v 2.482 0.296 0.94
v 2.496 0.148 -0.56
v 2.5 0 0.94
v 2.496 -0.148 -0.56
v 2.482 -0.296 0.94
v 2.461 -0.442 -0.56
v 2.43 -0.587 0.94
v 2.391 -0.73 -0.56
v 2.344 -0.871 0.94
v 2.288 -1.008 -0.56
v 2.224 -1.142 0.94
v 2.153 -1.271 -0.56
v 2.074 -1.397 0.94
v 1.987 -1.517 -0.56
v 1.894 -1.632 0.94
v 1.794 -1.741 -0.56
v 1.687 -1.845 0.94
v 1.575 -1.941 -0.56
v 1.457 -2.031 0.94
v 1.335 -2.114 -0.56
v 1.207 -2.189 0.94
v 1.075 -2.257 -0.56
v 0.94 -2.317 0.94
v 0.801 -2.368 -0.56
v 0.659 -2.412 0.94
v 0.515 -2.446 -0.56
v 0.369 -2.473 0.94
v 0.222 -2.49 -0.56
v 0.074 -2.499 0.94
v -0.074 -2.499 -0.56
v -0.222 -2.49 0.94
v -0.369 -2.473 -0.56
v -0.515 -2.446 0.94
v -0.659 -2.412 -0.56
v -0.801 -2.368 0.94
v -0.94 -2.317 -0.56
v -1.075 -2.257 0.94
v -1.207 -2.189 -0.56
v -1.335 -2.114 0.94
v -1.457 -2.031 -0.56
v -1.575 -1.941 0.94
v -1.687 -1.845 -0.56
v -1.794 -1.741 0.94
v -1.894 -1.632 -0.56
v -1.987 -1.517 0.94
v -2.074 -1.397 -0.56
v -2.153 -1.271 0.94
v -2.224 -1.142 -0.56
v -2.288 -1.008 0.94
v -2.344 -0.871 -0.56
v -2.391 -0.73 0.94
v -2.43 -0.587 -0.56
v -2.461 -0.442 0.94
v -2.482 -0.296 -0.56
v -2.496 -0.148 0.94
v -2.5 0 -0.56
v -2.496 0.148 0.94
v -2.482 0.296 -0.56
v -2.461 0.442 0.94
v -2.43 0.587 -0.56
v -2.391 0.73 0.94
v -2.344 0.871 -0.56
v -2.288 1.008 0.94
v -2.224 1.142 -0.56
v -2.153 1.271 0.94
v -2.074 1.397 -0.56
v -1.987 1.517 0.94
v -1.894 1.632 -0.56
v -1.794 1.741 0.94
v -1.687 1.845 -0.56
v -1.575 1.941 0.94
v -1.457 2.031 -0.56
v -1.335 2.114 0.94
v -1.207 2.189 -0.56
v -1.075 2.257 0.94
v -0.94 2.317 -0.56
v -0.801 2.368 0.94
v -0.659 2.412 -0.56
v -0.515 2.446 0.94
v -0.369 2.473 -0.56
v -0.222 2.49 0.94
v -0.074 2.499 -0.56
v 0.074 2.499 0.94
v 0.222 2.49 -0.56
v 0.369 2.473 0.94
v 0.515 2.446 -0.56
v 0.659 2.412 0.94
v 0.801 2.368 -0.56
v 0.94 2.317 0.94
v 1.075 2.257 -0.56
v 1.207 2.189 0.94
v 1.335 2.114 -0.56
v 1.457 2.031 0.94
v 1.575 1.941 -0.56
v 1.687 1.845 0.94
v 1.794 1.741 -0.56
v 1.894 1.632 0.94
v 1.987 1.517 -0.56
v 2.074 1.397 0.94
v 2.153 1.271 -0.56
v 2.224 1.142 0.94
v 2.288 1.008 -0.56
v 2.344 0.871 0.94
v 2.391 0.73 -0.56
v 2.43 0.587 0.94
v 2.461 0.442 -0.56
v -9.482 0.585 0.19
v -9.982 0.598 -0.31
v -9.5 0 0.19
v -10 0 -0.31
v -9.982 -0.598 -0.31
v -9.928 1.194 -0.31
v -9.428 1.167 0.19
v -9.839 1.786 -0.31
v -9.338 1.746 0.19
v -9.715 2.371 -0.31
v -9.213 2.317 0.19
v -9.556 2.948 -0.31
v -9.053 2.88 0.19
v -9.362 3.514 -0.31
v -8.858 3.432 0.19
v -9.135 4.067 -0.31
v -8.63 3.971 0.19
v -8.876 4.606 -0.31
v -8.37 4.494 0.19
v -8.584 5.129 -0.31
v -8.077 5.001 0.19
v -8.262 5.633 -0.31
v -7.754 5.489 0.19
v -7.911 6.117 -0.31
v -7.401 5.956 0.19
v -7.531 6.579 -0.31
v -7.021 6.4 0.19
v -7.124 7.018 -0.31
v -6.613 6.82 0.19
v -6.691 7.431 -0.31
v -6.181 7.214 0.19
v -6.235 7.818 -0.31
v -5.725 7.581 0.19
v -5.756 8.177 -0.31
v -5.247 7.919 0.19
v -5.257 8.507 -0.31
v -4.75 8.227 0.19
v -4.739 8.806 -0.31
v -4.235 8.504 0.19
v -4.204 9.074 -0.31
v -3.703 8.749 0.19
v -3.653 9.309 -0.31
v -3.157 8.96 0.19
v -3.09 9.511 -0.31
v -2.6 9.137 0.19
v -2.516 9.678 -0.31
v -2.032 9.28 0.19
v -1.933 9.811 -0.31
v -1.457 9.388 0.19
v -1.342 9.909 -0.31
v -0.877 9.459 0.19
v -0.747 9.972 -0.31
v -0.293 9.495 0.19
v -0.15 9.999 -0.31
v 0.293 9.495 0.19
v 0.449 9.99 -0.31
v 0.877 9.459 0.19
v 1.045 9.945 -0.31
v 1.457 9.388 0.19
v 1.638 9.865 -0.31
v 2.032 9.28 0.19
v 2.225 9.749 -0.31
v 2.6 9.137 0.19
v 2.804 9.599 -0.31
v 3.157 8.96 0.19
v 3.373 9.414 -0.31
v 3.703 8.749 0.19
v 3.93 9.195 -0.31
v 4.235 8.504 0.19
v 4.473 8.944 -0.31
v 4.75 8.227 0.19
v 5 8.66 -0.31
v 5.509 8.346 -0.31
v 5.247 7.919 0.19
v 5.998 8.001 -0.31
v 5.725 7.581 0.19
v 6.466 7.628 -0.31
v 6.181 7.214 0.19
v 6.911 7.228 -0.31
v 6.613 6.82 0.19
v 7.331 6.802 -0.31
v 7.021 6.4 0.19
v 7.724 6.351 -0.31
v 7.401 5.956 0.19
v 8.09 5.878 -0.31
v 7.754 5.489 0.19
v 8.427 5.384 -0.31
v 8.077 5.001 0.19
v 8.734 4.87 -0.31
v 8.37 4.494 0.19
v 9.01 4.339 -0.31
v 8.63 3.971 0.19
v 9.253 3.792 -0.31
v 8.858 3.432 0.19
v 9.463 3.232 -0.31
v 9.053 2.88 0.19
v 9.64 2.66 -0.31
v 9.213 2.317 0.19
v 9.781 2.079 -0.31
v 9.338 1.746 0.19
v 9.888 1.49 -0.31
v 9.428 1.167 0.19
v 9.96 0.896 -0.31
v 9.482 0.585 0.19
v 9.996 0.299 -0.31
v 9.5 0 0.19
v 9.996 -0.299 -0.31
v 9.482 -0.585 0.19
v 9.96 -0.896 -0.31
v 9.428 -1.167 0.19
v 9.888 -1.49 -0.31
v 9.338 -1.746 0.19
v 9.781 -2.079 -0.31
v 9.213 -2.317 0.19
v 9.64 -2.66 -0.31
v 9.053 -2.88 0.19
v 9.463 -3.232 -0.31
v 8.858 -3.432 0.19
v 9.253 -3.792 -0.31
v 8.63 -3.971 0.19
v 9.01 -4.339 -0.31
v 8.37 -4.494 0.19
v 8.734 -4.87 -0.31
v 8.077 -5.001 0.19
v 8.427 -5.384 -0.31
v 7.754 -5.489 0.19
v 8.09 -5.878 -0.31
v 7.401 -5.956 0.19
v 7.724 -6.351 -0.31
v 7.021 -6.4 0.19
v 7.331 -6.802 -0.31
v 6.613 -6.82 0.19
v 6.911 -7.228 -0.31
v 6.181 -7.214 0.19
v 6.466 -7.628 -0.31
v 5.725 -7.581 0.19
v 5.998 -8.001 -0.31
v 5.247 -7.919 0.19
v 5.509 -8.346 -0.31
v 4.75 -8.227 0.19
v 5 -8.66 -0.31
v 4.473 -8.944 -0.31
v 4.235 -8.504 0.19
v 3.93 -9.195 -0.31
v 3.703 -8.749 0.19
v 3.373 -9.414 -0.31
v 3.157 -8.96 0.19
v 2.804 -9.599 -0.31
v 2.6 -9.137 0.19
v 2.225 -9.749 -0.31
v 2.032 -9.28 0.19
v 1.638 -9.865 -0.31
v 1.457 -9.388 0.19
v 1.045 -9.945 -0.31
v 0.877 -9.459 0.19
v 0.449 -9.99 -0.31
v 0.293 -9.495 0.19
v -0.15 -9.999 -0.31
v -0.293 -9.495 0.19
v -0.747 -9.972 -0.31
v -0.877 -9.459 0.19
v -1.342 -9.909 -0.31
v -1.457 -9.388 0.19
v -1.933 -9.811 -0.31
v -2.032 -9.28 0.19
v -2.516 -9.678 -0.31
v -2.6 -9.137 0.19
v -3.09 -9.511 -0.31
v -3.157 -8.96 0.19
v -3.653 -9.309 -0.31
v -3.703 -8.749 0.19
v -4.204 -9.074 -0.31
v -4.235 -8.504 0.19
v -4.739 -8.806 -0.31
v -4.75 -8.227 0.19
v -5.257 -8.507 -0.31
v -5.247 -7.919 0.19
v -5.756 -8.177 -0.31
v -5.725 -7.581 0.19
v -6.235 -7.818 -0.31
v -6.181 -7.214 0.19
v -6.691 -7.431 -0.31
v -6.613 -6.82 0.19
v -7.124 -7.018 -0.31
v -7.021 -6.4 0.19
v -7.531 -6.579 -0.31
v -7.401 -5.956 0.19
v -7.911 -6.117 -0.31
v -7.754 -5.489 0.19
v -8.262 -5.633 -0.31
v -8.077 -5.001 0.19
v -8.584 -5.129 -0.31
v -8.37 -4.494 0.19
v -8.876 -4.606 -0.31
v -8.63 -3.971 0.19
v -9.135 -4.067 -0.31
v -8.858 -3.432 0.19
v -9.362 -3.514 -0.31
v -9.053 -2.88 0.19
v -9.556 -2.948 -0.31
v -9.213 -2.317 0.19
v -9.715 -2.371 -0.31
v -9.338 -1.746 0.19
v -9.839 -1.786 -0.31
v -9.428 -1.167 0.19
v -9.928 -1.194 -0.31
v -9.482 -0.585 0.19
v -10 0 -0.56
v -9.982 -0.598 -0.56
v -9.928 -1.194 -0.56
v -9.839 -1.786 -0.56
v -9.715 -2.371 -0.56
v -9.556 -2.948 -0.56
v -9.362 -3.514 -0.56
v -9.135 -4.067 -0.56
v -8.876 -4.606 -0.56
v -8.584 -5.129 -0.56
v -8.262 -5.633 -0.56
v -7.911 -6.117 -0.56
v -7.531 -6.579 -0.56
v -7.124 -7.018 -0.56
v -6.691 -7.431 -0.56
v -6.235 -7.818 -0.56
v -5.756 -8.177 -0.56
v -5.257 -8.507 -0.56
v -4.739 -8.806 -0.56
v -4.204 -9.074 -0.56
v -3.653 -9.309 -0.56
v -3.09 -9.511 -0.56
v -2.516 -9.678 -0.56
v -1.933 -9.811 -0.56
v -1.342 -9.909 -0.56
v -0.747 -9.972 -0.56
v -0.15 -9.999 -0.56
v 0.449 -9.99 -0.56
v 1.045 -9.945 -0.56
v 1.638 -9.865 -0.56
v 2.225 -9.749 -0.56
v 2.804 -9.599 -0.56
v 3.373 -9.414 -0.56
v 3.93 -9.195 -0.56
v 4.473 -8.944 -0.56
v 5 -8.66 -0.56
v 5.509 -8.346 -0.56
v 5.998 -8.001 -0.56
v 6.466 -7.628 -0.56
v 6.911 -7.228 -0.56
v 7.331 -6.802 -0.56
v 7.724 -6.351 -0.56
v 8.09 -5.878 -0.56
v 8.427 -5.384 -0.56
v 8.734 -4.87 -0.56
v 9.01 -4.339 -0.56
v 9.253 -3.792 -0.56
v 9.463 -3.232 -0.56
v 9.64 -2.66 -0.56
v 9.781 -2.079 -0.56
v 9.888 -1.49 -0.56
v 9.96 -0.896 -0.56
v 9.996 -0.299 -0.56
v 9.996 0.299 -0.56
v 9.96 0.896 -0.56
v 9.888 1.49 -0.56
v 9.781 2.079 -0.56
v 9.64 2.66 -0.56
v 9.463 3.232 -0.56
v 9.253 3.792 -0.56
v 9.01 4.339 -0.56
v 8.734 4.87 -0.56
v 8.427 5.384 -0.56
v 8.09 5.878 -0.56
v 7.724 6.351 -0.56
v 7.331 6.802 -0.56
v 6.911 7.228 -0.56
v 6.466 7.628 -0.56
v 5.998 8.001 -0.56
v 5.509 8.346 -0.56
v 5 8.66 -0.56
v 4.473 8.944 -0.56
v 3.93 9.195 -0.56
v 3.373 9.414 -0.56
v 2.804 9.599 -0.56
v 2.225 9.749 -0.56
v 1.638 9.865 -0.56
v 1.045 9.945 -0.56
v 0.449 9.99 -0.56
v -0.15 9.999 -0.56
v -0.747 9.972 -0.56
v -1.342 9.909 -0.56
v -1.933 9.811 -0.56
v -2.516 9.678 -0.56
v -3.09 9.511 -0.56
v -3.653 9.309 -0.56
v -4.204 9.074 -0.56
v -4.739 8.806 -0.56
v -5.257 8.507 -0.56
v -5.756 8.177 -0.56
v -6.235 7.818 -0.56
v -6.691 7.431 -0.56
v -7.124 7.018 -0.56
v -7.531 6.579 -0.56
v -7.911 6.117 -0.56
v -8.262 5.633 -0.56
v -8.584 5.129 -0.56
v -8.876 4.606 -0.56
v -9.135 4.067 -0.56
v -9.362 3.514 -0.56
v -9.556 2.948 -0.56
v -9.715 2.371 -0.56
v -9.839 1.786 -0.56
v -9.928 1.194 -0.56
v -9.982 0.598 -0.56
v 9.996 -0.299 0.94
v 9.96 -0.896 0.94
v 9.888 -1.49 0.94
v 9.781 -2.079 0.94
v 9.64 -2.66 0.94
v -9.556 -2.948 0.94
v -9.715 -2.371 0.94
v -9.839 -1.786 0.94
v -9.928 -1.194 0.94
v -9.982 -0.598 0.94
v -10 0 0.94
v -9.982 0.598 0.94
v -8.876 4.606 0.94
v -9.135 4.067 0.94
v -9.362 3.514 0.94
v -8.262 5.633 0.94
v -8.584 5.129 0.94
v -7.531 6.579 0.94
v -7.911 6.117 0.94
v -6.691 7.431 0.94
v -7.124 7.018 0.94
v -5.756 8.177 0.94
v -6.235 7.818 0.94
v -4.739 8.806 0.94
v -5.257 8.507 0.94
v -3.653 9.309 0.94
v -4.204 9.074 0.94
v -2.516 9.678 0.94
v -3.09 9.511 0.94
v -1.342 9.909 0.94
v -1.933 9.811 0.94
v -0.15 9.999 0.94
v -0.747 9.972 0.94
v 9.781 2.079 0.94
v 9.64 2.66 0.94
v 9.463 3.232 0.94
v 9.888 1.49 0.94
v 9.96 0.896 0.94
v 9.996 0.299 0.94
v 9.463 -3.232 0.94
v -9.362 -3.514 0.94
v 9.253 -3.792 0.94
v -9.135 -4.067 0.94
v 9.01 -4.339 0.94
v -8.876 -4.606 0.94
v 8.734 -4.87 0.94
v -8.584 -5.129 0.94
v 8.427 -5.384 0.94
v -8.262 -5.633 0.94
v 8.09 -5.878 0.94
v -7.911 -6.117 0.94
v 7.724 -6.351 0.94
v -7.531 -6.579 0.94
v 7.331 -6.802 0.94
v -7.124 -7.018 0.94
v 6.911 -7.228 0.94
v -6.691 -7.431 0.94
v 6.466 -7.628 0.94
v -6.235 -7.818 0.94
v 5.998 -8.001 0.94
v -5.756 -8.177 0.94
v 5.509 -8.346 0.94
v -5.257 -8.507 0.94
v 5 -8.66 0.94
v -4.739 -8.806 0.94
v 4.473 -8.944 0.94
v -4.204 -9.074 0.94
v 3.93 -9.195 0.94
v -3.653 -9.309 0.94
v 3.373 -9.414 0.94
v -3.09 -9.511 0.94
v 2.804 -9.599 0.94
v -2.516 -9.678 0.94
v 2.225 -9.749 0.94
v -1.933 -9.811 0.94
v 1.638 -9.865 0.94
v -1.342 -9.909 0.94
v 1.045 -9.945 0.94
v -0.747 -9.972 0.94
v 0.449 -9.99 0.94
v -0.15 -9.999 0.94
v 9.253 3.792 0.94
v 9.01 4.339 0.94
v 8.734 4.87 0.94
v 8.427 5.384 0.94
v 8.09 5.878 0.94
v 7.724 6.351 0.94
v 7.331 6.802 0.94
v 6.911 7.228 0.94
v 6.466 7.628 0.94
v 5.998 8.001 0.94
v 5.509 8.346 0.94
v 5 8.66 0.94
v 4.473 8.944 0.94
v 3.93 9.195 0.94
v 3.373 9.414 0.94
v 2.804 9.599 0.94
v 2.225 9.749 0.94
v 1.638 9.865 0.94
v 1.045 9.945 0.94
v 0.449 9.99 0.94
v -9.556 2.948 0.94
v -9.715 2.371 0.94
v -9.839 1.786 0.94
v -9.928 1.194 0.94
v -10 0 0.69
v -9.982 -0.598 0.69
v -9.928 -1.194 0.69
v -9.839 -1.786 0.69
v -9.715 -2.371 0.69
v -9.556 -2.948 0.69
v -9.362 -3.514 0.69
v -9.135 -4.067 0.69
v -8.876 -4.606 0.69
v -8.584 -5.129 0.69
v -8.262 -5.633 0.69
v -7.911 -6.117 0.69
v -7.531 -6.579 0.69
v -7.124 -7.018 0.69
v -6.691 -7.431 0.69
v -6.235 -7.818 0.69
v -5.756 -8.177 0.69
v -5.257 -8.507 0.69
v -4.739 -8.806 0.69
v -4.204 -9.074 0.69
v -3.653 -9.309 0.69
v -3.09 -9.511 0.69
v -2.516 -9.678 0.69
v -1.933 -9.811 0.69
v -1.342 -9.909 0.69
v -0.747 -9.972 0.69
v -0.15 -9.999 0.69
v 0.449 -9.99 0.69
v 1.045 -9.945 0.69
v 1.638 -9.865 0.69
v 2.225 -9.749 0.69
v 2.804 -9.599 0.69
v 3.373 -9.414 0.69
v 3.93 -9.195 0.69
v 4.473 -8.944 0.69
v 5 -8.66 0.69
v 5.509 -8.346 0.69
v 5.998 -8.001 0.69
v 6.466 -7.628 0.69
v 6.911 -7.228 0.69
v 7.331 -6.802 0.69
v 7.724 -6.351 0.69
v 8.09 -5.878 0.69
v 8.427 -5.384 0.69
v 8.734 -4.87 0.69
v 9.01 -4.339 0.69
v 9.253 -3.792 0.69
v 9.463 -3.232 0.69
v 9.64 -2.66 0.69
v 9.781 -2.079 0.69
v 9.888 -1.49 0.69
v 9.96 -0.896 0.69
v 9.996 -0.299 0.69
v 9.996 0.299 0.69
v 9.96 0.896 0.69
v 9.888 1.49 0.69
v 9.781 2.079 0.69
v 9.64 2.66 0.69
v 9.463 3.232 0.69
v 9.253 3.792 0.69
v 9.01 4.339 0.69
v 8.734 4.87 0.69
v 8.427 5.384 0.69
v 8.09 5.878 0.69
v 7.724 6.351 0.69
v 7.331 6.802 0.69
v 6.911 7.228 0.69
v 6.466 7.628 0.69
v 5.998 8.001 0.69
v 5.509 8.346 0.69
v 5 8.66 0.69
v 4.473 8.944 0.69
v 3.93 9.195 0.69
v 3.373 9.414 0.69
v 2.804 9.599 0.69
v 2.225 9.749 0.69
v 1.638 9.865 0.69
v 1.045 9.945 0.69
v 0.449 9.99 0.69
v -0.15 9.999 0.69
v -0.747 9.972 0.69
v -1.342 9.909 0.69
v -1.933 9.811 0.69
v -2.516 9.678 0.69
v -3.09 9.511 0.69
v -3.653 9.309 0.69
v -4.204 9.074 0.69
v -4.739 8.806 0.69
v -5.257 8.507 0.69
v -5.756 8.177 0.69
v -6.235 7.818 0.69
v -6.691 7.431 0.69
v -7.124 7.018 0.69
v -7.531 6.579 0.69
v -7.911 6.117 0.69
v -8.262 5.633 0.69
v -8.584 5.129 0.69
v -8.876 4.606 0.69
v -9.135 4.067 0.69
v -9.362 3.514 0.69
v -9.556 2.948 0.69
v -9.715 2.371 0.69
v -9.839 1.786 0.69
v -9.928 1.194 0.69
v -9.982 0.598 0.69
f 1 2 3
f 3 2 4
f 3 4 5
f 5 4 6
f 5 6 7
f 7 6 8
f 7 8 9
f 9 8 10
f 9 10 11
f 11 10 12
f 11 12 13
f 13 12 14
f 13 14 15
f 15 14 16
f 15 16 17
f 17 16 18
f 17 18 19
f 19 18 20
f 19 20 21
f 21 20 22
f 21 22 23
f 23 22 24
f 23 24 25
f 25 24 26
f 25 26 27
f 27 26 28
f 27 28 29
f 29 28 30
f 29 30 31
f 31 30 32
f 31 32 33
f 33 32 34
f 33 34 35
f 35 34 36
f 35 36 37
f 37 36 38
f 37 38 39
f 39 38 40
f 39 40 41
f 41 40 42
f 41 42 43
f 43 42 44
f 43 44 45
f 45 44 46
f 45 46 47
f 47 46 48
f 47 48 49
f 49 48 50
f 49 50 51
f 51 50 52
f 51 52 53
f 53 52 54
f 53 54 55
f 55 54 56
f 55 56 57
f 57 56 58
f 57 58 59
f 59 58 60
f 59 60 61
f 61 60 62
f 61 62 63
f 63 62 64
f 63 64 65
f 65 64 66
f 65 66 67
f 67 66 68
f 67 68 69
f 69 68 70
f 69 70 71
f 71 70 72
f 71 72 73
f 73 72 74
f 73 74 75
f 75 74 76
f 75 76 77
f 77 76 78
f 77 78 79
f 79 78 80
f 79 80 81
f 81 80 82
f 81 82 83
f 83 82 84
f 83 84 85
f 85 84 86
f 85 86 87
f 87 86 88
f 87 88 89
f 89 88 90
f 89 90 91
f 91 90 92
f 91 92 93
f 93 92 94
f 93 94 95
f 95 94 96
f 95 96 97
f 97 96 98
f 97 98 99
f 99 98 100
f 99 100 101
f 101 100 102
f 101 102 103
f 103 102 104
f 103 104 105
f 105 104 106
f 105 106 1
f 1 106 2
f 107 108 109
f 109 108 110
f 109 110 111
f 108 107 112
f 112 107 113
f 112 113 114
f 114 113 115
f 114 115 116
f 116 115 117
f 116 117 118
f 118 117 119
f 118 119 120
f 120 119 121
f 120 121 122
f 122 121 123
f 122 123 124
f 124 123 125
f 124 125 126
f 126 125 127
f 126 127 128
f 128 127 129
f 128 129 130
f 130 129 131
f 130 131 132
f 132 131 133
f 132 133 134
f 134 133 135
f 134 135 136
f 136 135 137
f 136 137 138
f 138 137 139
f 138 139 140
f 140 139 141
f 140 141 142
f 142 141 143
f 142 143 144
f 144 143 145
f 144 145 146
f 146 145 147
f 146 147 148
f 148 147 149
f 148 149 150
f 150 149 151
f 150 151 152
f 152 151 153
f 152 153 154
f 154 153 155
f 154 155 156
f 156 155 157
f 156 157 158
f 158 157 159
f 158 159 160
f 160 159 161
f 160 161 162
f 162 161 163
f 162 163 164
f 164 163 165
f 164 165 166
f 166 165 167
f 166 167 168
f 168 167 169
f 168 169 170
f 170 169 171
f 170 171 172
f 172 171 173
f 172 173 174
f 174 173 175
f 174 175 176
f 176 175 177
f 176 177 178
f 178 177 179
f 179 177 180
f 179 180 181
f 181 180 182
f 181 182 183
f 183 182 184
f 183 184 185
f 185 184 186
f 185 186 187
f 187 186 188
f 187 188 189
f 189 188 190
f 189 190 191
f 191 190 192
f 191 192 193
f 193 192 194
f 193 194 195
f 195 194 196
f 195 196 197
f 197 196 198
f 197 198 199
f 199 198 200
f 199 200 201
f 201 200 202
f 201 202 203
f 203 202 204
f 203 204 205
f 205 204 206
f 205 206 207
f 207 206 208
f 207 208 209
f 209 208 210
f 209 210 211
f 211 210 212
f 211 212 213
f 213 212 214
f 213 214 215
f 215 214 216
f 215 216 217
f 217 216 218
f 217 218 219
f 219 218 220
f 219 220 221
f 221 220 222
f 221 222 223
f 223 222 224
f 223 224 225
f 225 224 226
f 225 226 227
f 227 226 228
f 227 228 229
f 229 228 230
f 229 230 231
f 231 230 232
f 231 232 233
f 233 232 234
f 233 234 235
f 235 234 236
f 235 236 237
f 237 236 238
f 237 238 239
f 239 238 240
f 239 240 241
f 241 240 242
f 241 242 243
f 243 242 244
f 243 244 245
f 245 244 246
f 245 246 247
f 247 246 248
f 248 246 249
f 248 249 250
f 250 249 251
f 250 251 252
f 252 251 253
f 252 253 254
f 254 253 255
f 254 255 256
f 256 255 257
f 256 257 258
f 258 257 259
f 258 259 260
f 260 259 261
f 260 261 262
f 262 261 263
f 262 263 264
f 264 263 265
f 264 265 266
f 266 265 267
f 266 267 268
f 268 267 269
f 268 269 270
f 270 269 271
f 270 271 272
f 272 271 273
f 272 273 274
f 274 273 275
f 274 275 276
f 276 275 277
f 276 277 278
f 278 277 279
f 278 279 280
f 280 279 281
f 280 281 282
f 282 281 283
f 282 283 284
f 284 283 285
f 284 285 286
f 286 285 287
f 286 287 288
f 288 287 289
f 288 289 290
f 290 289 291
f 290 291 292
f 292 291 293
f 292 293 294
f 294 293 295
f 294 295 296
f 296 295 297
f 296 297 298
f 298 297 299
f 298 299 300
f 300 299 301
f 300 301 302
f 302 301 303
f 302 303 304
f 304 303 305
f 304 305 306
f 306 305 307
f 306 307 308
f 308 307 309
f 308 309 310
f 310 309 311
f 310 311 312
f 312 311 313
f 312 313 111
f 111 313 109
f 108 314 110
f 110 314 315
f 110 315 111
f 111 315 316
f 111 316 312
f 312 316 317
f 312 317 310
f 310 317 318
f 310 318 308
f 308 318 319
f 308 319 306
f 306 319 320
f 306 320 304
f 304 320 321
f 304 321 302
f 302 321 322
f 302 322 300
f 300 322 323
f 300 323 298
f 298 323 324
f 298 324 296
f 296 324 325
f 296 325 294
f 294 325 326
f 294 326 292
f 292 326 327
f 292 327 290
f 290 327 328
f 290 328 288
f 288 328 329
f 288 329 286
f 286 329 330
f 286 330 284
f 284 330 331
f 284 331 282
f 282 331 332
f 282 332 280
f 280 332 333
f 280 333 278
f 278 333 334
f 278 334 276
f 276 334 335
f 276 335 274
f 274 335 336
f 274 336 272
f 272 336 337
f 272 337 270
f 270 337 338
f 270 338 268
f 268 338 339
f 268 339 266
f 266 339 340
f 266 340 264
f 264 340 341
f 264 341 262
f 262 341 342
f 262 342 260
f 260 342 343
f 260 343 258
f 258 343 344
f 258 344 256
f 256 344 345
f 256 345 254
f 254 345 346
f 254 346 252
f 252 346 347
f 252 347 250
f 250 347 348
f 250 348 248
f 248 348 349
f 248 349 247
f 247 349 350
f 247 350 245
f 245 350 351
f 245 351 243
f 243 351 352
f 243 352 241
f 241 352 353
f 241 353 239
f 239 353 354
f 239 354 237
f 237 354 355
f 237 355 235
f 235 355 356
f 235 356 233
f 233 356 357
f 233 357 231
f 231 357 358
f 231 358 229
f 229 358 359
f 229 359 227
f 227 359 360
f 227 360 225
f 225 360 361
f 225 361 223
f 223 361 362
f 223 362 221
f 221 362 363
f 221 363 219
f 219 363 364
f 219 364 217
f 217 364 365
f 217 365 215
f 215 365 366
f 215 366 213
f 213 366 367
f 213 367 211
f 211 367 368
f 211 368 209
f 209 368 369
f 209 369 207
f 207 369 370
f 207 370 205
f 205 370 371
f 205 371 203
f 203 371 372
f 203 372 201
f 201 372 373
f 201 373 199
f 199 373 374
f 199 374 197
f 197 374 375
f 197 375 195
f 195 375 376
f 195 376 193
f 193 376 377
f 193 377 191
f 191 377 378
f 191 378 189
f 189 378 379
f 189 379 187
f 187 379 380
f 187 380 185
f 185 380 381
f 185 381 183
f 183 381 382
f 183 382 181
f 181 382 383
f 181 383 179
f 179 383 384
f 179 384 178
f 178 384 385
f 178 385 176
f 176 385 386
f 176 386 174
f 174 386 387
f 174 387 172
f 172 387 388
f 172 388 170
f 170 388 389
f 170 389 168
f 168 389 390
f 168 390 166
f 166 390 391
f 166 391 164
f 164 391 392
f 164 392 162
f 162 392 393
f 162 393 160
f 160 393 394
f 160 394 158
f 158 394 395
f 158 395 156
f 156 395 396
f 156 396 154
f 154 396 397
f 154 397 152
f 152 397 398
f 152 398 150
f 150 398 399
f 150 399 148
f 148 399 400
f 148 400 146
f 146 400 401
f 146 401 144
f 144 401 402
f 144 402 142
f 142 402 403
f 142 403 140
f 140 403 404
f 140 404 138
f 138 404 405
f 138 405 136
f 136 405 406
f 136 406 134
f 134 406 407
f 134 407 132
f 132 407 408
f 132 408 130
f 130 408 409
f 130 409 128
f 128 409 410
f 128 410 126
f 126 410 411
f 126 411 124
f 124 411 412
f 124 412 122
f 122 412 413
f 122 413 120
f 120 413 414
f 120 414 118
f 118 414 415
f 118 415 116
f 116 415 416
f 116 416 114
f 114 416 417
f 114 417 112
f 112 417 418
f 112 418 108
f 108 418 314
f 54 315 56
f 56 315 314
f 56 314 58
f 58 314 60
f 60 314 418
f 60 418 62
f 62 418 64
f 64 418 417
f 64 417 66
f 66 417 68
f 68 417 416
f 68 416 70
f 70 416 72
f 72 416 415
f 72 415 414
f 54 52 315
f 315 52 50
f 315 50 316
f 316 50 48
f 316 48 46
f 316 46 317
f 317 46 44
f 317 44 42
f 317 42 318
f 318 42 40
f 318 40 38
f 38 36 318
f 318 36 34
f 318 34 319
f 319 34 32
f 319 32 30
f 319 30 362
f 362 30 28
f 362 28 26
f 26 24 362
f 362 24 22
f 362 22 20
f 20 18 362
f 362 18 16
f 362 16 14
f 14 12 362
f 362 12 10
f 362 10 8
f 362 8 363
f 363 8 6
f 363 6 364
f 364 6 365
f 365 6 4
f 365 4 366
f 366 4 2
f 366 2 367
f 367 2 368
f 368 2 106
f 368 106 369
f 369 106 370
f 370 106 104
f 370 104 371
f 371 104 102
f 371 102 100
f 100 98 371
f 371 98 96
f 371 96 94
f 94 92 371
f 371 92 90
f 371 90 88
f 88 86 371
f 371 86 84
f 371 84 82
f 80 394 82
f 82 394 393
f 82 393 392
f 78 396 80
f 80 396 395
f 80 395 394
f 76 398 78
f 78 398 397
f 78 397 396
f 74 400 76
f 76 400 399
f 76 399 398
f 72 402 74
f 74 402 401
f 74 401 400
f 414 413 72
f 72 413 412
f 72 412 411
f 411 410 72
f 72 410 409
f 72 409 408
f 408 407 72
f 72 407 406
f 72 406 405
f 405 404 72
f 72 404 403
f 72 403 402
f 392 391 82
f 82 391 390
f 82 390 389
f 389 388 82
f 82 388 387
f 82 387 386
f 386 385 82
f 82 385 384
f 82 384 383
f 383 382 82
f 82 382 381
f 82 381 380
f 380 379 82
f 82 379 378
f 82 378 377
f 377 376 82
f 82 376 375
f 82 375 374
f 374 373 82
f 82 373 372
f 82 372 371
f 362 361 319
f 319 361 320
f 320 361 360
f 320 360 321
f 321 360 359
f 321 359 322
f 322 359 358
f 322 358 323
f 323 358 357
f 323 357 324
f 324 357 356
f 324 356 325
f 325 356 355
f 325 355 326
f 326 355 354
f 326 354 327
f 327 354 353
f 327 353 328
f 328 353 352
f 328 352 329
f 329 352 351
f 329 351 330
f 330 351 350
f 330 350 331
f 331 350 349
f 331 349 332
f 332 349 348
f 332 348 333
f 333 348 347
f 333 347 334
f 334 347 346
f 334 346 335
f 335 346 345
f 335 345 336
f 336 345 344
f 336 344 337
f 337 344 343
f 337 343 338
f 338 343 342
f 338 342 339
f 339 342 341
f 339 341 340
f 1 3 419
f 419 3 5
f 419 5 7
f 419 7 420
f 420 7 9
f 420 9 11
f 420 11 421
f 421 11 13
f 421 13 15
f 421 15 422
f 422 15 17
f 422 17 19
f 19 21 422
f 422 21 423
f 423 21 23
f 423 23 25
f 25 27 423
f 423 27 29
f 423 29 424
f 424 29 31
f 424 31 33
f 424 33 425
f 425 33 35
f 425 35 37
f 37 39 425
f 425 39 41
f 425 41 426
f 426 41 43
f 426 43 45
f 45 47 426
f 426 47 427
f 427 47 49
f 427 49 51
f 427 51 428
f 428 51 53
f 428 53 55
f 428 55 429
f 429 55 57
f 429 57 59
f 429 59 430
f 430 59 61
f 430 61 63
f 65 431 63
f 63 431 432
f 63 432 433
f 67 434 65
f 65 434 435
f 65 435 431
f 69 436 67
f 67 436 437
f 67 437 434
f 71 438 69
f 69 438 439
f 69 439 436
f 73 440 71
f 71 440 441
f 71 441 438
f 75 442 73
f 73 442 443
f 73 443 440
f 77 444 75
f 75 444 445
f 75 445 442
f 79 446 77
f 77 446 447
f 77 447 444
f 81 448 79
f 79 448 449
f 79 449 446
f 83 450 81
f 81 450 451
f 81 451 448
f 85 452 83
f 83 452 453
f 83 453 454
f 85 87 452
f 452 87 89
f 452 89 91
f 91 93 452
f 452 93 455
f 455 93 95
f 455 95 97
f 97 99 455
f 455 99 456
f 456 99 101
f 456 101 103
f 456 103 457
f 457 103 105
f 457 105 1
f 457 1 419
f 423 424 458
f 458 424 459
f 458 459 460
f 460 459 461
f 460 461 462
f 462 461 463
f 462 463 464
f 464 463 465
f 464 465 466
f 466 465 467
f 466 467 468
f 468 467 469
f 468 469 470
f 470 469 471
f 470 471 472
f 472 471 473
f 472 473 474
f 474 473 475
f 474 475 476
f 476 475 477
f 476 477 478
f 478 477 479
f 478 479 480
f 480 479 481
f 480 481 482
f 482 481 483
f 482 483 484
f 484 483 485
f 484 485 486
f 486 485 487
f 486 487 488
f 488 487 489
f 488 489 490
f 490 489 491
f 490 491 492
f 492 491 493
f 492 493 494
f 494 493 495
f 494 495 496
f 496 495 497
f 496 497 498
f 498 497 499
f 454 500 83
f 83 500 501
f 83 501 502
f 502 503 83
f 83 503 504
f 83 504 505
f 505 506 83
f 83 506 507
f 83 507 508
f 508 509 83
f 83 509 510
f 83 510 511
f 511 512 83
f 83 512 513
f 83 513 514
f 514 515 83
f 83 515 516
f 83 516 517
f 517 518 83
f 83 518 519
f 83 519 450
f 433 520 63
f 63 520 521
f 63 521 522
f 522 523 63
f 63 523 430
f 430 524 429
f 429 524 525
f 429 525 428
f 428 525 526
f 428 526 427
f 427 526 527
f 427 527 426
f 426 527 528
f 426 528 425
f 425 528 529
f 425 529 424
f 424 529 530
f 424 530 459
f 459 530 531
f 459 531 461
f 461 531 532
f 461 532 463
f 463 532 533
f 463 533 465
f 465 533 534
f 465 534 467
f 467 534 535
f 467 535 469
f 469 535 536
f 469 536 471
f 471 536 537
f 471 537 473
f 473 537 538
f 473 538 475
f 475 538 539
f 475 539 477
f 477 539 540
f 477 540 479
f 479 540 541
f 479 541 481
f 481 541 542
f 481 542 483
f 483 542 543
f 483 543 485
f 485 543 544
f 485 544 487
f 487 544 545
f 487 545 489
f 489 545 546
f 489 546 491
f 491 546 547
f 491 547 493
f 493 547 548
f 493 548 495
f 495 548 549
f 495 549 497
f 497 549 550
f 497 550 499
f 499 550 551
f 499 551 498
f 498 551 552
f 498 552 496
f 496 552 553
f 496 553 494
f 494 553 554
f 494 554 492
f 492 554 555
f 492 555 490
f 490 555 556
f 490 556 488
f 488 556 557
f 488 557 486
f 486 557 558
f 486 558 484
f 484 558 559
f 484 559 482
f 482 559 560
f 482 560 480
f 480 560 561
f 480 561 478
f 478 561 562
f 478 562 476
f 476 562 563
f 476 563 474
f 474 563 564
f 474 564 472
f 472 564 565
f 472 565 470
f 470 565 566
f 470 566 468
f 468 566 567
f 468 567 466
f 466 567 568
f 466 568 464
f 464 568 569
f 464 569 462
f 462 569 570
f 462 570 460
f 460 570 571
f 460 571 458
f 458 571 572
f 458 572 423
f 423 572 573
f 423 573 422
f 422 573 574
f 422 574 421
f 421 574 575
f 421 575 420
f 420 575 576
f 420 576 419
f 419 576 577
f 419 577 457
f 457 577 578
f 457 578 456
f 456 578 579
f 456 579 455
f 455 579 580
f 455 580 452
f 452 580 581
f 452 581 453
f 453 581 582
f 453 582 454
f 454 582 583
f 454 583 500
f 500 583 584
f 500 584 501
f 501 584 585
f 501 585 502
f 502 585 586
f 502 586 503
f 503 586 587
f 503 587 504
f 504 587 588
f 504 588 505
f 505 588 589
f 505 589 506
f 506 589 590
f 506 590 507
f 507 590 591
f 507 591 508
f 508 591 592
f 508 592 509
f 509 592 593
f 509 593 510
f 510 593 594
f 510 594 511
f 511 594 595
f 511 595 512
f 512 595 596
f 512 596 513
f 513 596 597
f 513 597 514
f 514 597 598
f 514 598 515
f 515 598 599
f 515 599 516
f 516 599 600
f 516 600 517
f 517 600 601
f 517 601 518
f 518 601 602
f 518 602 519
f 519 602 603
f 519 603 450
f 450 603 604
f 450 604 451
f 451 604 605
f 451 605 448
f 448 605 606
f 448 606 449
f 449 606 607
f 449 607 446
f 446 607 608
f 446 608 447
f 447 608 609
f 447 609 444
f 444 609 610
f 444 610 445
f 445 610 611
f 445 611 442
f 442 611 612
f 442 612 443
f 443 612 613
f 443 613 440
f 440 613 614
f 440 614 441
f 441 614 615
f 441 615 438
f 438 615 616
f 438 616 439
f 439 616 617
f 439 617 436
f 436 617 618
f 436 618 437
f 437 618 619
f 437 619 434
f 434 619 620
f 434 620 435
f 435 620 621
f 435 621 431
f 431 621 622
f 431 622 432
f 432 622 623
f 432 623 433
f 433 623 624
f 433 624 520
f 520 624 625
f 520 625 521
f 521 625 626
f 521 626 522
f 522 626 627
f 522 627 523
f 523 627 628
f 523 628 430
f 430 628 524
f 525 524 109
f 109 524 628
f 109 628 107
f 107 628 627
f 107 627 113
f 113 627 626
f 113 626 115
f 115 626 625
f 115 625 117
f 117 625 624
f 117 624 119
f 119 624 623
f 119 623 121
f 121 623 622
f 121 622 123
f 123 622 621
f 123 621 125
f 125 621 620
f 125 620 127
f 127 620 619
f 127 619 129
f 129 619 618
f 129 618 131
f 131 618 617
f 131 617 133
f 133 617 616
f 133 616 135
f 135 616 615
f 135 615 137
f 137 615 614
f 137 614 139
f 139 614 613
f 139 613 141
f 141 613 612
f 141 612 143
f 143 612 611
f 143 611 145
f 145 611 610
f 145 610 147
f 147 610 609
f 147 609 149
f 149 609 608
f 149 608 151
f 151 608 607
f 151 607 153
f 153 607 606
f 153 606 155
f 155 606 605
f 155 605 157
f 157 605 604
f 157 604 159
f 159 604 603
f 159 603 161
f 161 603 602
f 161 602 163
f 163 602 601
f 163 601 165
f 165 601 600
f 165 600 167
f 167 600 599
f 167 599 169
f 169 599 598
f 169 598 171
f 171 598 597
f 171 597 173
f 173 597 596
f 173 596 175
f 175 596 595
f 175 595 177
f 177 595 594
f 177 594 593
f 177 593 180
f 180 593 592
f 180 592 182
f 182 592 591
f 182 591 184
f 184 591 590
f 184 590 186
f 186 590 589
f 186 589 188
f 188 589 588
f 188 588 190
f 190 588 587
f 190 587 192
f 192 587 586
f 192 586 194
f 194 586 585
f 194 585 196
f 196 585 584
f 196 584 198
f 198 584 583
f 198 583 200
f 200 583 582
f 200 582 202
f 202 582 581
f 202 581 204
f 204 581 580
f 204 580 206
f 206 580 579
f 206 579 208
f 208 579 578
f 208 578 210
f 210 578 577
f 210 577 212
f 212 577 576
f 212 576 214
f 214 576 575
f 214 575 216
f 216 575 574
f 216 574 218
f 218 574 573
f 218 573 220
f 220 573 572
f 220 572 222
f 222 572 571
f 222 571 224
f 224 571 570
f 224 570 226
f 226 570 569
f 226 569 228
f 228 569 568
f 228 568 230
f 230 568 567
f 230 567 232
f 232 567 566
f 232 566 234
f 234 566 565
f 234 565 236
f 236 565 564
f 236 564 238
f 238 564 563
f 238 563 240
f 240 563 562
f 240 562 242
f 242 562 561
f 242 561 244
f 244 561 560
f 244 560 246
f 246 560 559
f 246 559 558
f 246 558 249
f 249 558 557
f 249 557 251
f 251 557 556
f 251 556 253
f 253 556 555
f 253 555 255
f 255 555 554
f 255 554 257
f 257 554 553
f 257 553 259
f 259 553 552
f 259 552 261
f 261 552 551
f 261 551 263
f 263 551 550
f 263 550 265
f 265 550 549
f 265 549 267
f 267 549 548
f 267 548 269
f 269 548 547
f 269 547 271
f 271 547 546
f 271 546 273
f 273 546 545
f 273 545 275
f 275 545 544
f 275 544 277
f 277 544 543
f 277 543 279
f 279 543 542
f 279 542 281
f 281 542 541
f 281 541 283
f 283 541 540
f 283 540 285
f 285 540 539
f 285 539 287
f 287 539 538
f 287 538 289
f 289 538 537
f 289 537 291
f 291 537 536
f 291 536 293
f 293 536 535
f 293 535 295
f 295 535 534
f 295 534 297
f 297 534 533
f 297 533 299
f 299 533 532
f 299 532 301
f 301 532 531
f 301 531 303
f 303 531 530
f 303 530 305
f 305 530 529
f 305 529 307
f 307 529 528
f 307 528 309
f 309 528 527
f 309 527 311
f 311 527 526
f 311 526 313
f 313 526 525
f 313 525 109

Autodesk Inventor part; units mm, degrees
ref_plane "YZ Plane" through (0, 0, 0) normal (1, 0, 0) x (0, 1, 0)
ref_plane "XZ Plane" through (0, 0, 0) normal (0, 1, 0) x (-1, 0, 0)
ref_plane "XY Plane" through (0, 0, 0) normal (0, 0, 1) x (1, 0, 0)
sketch "Sketch1" plane through (0, 0, 0) normal (0, 1, 0) x (-1, 0, 0)
  line L0 (9.5, 0.1897) -> (10, 0.6897)
  line L1 (10, 0.6897) -> (10, 0.9397)
  line L2 (10, 0.9397) -> (0, 0.9397)
  line L3 (9.5, 0.1897) -> (-0.1607, 0.1897) construction
  line L4 (9.5, 0.1897) -> (10, -0.3103)
  line L5 (10, -0.3103) -> (10, -0.5603)
  line L6 (10, -0.5603) -> (0, -0.5603)
  line L7 (0, 0.9397) -> (0, -0.5603)
  dimension "d1" = 1.5
  dimension "d2" = 1
  dimension "d3" = 90
revolve "Revolution1" add sketch "Sketch1" angle 360 about axis through (0, 0, 0.9397) along (0, 0, -1)
sketch "Sketch2" plane through (0, 0, -0.5603) normal (0, 0, -1) x (-1, 0, 0)
  circle A0 centre (0, 0) radius 10 projected
  circle A1 centre (0, 0) radius 2.5
  point P0 (0, 0)
  dimension "d5" = 5
extrude "Extrusion1" cut sketch "Sketch2" against normal blind 10 contours A1
properties part number "kladicka"
